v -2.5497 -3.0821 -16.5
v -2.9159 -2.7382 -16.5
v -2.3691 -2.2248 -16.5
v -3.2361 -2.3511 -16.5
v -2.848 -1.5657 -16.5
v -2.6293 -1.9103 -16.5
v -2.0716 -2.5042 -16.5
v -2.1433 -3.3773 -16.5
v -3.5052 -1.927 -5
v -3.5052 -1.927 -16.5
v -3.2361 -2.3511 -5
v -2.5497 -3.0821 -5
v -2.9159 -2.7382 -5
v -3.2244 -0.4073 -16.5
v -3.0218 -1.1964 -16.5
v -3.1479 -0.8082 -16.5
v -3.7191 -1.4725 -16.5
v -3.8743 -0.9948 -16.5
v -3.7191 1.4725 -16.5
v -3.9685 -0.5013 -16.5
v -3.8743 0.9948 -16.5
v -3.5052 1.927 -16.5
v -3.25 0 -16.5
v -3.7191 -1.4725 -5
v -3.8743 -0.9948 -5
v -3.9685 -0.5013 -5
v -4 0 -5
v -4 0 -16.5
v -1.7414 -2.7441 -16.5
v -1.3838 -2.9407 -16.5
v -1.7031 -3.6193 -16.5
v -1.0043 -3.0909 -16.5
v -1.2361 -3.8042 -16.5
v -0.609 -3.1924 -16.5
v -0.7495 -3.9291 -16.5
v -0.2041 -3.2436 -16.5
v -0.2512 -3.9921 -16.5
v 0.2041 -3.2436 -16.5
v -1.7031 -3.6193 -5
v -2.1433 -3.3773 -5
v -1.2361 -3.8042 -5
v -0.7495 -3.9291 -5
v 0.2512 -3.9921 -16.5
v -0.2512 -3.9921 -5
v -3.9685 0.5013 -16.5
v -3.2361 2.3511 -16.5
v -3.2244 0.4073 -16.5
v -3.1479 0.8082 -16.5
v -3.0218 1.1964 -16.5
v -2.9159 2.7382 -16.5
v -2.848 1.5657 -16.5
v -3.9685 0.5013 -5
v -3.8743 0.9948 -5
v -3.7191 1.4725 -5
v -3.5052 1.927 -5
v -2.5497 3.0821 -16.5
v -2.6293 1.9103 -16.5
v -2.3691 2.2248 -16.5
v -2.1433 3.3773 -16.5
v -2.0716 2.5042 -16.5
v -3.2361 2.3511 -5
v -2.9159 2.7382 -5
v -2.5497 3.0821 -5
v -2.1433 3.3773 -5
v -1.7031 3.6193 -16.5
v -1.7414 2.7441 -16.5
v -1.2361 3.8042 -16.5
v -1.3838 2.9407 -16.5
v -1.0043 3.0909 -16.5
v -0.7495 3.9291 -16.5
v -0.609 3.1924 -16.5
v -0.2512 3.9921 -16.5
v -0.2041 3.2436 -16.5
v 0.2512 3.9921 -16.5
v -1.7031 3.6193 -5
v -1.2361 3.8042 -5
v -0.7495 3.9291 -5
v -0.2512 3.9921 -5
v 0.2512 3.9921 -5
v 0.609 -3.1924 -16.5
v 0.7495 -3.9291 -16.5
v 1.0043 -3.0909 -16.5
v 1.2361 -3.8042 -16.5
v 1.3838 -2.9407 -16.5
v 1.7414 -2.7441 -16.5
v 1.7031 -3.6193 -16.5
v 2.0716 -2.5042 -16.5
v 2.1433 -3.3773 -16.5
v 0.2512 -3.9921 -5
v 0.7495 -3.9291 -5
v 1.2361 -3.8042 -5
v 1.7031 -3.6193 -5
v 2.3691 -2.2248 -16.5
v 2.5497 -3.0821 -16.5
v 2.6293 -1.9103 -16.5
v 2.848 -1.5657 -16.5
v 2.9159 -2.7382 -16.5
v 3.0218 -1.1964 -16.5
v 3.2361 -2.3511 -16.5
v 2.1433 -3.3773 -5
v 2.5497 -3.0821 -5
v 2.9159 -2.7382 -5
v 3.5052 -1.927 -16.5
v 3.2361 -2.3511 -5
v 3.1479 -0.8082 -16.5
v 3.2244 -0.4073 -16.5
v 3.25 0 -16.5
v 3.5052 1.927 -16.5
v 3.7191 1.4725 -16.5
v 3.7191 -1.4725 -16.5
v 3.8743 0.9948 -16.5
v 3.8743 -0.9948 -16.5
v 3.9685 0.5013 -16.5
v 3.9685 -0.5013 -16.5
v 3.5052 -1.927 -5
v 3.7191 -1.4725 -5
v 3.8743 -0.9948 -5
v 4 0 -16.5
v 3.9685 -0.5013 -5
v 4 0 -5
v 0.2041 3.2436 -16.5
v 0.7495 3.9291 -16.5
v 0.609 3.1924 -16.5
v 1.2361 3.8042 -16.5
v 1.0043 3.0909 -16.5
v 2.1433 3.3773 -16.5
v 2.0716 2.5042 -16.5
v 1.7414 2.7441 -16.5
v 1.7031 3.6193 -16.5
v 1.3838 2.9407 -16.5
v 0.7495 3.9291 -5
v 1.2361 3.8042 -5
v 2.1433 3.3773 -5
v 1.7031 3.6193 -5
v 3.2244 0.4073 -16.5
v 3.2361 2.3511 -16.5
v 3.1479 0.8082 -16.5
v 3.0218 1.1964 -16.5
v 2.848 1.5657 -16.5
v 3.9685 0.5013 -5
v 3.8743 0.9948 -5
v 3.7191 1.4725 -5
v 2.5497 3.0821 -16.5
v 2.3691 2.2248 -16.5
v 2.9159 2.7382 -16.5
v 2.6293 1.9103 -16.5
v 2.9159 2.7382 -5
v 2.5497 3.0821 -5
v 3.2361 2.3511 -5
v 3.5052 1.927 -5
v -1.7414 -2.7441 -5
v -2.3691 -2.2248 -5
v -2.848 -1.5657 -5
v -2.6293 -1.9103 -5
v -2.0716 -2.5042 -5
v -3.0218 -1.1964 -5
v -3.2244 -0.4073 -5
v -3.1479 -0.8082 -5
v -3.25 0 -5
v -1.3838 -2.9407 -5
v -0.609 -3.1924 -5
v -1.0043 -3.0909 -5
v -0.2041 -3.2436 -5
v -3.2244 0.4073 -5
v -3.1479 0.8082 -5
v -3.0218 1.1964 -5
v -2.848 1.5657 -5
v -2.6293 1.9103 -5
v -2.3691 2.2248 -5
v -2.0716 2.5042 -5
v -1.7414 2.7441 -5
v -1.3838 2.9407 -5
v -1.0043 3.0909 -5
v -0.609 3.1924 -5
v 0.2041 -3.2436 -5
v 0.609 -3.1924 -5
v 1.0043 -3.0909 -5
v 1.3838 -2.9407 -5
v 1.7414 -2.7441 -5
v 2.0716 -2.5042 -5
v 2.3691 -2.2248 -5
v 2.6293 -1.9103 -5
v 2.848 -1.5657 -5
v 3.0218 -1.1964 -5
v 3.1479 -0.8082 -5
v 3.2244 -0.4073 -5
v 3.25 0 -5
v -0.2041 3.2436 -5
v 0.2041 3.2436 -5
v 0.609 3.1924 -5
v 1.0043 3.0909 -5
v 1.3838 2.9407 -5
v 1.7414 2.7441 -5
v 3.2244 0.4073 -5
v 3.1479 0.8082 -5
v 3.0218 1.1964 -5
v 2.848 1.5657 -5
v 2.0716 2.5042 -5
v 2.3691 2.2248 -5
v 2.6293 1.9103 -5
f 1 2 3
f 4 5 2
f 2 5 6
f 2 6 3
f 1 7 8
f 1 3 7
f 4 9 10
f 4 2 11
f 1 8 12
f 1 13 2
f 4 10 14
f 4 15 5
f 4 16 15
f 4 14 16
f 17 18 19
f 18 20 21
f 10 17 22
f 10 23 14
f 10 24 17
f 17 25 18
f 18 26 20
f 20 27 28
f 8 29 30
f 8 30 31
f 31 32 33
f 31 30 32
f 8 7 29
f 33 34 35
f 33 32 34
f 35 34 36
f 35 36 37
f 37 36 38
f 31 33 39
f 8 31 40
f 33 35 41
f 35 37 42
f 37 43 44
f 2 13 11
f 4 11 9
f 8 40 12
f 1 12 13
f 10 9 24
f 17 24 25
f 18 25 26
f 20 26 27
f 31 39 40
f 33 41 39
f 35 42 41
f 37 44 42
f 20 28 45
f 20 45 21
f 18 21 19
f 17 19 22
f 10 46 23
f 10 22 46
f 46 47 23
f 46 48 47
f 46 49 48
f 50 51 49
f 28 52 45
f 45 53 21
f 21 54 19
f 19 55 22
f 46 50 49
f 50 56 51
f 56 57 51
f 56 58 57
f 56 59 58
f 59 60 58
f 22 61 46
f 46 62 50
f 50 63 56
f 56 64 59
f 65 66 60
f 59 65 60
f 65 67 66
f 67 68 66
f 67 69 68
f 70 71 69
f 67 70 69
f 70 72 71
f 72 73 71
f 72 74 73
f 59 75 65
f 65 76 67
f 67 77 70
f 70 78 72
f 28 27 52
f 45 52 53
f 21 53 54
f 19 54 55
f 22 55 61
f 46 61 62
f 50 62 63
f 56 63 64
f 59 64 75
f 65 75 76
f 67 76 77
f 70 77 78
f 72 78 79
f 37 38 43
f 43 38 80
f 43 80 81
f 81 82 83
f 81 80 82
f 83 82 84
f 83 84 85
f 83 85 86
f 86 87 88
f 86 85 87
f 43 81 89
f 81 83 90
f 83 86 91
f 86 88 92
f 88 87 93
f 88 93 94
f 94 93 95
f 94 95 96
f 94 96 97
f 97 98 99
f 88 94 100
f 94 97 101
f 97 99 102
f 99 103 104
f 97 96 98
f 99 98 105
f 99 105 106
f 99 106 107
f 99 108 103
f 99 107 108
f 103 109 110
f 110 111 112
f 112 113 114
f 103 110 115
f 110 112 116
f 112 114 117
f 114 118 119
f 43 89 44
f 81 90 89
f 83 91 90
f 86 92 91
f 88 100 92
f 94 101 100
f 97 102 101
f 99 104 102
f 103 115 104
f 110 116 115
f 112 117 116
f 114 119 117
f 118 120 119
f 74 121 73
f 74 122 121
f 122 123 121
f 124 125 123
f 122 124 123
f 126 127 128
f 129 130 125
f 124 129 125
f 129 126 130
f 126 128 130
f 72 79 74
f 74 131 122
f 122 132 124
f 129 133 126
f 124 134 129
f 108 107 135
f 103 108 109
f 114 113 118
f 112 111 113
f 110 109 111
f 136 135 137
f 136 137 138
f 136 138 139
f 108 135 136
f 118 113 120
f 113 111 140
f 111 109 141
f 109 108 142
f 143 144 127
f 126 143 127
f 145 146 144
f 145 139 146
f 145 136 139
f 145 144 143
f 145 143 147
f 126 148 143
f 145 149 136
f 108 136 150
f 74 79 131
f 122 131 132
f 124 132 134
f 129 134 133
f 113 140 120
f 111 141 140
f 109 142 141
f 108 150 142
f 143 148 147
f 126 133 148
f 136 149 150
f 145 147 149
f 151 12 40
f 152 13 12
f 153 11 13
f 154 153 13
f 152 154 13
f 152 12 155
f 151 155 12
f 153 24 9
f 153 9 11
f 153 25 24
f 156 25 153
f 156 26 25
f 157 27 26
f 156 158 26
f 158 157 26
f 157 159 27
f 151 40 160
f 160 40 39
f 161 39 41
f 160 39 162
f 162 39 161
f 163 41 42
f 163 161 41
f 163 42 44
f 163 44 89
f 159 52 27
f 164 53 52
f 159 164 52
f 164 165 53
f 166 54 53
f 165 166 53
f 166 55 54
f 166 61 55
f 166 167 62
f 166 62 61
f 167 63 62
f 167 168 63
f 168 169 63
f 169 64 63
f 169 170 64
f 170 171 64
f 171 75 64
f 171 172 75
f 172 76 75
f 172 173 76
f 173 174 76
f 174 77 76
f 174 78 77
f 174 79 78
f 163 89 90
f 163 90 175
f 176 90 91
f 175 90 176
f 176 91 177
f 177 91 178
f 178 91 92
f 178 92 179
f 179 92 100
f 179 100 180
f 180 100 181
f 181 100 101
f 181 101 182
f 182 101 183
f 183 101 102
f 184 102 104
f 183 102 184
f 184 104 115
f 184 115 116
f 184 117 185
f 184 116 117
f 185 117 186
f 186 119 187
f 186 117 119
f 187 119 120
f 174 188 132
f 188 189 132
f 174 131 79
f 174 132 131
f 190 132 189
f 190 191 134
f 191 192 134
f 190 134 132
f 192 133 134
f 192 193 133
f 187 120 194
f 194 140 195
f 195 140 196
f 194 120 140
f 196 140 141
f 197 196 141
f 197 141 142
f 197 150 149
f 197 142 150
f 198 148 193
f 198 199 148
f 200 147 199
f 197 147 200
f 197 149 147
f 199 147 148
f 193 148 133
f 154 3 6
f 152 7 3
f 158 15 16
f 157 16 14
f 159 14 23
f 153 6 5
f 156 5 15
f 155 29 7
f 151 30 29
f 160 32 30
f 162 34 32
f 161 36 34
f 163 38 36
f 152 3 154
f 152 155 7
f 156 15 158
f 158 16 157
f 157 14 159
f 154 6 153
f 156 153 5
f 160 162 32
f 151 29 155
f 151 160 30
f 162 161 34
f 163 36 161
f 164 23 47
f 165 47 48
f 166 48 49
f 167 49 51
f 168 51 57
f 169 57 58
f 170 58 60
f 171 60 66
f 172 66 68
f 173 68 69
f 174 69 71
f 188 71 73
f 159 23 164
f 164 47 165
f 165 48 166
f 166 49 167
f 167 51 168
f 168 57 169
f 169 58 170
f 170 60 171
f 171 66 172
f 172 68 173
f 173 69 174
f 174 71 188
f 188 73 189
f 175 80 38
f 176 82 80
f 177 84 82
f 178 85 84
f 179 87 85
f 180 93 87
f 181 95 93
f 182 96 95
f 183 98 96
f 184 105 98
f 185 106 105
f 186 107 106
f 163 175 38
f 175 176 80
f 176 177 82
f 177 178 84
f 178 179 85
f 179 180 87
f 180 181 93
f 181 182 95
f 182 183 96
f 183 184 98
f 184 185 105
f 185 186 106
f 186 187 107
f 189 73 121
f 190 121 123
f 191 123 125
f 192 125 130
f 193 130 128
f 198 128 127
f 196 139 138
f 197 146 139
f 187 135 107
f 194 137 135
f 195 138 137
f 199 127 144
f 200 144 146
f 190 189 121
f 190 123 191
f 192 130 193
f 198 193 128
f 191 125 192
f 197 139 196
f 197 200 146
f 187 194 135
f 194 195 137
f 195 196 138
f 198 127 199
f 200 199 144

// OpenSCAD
$fn = 50;

difference() {
	union() {
		translate(v = [0, 0, -16.5]) {
			cylinder(h = 16.5, r = 4.0);
		}
		#translate(v = [0, 0, -18.0]) {
			cylinder(h = 18, r = 2.875);
		}
	}
	union() {
		translate(v = [0, 0, 0]) {
			rotate(a = [0, 0, 0]) {
				difference() {
					union() {
						translate(v = [0, 0, -5]) {
							linear_extrude(height = 5) {
								polygon(points = [[5.914249999999999, 0.0], [2.957125, 5.1218907443321156], [-2.9571249999999982, 5.1218907443321156], [-5.914249999999999, 7.242867331857232e-16], [-2.9571250000000022, -5.121890744332115], [2.9571249999999956, -5.121890744332118]]);
							}
						}
					}
					union();
				}
			}
		}
		#translate(v = [0, 0, -100.0]) {
			cylinder(h = 200, r = 3.25);
		}
	}
}
